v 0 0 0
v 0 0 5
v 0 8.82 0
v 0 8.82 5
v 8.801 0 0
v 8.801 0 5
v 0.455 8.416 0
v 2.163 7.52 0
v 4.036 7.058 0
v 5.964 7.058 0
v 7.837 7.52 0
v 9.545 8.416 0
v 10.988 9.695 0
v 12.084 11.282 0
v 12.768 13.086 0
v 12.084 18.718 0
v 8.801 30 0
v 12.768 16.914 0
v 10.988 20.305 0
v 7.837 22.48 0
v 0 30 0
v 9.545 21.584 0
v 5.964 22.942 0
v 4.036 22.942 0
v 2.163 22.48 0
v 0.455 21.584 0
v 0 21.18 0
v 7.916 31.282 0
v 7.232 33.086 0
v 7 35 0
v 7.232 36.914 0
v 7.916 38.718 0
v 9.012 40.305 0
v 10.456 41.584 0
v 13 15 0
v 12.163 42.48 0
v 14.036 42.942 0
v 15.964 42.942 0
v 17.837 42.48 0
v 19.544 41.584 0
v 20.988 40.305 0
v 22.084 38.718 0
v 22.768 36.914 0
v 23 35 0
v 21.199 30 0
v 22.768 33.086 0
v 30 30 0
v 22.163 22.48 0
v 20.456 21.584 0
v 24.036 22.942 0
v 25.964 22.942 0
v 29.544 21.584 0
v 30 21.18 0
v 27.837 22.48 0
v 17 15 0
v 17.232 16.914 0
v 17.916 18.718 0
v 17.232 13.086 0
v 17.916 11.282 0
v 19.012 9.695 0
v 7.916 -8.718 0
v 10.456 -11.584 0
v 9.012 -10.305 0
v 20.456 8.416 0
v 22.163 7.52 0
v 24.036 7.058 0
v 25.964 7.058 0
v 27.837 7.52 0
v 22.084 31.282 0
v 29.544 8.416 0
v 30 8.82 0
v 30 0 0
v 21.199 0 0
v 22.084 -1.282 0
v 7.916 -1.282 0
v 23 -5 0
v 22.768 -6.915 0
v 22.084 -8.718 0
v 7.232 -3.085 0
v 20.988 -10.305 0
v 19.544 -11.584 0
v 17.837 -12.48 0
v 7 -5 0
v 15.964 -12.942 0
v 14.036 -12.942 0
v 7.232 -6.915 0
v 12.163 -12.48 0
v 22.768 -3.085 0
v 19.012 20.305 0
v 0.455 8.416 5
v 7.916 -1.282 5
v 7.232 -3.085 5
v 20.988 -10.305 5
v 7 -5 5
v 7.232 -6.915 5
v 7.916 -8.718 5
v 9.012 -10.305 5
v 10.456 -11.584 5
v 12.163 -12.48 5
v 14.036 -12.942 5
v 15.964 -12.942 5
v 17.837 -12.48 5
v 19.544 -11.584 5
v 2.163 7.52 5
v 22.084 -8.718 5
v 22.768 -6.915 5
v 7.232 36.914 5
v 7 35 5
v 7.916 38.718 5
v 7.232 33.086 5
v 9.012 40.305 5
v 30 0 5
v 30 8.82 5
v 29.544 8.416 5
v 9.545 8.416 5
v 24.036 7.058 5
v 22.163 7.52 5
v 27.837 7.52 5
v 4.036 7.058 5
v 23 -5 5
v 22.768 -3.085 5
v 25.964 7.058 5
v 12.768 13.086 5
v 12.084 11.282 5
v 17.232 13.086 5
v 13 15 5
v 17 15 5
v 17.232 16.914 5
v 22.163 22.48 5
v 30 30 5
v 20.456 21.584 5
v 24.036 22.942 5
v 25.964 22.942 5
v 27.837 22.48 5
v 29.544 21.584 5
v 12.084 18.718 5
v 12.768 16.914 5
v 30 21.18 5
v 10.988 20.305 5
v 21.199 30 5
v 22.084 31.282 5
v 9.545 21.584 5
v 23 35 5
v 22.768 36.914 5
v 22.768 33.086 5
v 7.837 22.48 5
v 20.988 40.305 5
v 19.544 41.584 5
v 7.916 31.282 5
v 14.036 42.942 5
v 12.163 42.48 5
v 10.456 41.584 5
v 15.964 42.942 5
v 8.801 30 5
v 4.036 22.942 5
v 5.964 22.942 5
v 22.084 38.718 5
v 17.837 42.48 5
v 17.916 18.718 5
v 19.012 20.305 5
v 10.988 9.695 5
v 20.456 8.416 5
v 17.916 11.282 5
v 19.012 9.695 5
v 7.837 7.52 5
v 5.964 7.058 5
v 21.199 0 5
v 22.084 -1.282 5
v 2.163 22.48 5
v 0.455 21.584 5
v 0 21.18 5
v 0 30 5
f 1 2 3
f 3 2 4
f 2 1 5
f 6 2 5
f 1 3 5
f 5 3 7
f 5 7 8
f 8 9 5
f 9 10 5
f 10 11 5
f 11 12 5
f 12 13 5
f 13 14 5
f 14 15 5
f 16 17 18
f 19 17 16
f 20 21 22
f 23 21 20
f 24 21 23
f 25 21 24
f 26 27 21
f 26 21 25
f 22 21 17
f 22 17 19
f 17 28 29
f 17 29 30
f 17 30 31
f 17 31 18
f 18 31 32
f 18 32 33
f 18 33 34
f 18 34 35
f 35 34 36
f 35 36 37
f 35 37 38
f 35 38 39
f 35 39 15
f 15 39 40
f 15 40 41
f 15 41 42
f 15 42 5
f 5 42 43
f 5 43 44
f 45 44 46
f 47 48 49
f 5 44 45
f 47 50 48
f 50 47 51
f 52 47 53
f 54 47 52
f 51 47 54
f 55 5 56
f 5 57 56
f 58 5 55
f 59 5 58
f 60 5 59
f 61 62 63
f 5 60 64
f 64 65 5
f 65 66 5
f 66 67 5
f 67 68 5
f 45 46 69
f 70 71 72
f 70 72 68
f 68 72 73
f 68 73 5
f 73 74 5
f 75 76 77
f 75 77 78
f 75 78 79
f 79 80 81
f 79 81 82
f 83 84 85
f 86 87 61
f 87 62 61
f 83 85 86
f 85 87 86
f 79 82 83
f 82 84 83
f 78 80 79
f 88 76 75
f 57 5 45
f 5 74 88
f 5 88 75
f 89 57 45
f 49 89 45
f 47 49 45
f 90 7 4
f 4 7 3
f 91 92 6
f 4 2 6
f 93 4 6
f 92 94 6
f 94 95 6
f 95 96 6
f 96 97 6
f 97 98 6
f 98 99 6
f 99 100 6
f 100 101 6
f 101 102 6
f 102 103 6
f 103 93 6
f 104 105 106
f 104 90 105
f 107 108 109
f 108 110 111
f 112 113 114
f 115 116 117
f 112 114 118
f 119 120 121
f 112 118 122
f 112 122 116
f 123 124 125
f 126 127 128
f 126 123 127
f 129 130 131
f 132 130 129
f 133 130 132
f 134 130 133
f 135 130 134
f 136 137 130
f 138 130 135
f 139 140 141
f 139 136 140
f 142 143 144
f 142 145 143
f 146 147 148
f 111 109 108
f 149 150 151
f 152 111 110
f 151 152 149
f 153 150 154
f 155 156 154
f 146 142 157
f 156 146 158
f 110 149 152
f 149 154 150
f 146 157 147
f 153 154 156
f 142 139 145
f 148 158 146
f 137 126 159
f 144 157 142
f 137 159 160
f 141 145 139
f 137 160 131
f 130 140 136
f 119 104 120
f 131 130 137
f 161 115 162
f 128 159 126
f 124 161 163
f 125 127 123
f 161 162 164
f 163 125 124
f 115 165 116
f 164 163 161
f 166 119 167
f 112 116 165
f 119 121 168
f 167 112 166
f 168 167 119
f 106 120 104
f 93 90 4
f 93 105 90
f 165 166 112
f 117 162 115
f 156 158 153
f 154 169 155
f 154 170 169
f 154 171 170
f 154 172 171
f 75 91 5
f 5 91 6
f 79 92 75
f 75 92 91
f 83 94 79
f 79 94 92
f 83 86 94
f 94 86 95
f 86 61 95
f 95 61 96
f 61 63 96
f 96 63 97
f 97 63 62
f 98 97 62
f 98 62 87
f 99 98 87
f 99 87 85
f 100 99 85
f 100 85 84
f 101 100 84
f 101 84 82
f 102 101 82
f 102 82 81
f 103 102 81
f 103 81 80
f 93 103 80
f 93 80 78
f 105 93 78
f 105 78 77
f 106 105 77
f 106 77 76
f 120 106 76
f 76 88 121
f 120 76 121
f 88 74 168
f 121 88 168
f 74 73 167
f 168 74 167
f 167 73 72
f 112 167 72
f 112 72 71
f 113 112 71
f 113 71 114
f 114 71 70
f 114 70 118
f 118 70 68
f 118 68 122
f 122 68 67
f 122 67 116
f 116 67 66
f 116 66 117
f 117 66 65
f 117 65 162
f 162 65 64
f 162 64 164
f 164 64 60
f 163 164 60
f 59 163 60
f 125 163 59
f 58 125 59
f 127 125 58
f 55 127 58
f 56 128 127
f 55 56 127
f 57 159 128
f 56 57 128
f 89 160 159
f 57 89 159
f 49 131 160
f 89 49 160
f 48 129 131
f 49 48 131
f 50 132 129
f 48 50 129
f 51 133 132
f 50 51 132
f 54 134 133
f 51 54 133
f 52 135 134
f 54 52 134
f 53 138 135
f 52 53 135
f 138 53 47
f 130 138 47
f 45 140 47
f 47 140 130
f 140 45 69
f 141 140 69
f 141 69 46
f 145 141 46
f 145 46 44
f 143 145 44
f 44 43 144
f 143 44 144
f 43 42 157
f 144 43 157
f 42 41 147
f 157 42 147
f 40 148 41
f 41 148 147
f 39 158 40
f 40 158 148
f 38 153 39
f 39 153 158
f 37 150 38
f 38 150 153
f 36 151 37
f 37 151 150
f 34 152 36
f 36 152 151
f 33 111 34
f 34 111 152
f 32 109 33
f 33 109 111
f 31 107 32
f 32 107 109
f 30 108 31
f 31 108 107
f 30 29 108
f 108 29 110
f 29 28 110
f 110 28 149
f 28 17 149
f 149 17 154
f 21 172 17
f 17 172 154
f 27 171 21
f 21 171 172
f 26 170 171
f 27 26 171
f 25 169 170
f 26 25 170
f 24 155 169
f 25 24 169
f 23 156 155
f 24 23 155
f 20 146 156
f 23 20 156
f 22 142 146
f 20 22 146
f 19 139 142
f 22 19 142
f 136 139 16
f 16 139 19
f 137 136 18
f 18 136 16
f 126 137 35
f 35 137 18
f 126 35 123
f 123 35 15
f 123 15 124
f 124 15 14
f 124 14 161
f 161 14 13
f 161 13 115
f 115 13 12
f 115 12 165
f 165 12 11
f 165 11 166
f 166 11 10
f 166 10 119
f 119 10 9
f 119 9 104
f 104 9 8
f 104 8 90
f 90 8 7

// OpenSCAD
//SODA LABS 25.07.2014 Loguncov Maxim
//36 штук


difference(){
cube([30,30,5,]);
translate([5,15,0])
cylinder(5,8,8);
translate([25,15,0])
cylinder(5,8,8);
}
translate([15,-5,0])
cylinder(5,8,8);
translate([15,35,0])
cylinder(5,8,8);
